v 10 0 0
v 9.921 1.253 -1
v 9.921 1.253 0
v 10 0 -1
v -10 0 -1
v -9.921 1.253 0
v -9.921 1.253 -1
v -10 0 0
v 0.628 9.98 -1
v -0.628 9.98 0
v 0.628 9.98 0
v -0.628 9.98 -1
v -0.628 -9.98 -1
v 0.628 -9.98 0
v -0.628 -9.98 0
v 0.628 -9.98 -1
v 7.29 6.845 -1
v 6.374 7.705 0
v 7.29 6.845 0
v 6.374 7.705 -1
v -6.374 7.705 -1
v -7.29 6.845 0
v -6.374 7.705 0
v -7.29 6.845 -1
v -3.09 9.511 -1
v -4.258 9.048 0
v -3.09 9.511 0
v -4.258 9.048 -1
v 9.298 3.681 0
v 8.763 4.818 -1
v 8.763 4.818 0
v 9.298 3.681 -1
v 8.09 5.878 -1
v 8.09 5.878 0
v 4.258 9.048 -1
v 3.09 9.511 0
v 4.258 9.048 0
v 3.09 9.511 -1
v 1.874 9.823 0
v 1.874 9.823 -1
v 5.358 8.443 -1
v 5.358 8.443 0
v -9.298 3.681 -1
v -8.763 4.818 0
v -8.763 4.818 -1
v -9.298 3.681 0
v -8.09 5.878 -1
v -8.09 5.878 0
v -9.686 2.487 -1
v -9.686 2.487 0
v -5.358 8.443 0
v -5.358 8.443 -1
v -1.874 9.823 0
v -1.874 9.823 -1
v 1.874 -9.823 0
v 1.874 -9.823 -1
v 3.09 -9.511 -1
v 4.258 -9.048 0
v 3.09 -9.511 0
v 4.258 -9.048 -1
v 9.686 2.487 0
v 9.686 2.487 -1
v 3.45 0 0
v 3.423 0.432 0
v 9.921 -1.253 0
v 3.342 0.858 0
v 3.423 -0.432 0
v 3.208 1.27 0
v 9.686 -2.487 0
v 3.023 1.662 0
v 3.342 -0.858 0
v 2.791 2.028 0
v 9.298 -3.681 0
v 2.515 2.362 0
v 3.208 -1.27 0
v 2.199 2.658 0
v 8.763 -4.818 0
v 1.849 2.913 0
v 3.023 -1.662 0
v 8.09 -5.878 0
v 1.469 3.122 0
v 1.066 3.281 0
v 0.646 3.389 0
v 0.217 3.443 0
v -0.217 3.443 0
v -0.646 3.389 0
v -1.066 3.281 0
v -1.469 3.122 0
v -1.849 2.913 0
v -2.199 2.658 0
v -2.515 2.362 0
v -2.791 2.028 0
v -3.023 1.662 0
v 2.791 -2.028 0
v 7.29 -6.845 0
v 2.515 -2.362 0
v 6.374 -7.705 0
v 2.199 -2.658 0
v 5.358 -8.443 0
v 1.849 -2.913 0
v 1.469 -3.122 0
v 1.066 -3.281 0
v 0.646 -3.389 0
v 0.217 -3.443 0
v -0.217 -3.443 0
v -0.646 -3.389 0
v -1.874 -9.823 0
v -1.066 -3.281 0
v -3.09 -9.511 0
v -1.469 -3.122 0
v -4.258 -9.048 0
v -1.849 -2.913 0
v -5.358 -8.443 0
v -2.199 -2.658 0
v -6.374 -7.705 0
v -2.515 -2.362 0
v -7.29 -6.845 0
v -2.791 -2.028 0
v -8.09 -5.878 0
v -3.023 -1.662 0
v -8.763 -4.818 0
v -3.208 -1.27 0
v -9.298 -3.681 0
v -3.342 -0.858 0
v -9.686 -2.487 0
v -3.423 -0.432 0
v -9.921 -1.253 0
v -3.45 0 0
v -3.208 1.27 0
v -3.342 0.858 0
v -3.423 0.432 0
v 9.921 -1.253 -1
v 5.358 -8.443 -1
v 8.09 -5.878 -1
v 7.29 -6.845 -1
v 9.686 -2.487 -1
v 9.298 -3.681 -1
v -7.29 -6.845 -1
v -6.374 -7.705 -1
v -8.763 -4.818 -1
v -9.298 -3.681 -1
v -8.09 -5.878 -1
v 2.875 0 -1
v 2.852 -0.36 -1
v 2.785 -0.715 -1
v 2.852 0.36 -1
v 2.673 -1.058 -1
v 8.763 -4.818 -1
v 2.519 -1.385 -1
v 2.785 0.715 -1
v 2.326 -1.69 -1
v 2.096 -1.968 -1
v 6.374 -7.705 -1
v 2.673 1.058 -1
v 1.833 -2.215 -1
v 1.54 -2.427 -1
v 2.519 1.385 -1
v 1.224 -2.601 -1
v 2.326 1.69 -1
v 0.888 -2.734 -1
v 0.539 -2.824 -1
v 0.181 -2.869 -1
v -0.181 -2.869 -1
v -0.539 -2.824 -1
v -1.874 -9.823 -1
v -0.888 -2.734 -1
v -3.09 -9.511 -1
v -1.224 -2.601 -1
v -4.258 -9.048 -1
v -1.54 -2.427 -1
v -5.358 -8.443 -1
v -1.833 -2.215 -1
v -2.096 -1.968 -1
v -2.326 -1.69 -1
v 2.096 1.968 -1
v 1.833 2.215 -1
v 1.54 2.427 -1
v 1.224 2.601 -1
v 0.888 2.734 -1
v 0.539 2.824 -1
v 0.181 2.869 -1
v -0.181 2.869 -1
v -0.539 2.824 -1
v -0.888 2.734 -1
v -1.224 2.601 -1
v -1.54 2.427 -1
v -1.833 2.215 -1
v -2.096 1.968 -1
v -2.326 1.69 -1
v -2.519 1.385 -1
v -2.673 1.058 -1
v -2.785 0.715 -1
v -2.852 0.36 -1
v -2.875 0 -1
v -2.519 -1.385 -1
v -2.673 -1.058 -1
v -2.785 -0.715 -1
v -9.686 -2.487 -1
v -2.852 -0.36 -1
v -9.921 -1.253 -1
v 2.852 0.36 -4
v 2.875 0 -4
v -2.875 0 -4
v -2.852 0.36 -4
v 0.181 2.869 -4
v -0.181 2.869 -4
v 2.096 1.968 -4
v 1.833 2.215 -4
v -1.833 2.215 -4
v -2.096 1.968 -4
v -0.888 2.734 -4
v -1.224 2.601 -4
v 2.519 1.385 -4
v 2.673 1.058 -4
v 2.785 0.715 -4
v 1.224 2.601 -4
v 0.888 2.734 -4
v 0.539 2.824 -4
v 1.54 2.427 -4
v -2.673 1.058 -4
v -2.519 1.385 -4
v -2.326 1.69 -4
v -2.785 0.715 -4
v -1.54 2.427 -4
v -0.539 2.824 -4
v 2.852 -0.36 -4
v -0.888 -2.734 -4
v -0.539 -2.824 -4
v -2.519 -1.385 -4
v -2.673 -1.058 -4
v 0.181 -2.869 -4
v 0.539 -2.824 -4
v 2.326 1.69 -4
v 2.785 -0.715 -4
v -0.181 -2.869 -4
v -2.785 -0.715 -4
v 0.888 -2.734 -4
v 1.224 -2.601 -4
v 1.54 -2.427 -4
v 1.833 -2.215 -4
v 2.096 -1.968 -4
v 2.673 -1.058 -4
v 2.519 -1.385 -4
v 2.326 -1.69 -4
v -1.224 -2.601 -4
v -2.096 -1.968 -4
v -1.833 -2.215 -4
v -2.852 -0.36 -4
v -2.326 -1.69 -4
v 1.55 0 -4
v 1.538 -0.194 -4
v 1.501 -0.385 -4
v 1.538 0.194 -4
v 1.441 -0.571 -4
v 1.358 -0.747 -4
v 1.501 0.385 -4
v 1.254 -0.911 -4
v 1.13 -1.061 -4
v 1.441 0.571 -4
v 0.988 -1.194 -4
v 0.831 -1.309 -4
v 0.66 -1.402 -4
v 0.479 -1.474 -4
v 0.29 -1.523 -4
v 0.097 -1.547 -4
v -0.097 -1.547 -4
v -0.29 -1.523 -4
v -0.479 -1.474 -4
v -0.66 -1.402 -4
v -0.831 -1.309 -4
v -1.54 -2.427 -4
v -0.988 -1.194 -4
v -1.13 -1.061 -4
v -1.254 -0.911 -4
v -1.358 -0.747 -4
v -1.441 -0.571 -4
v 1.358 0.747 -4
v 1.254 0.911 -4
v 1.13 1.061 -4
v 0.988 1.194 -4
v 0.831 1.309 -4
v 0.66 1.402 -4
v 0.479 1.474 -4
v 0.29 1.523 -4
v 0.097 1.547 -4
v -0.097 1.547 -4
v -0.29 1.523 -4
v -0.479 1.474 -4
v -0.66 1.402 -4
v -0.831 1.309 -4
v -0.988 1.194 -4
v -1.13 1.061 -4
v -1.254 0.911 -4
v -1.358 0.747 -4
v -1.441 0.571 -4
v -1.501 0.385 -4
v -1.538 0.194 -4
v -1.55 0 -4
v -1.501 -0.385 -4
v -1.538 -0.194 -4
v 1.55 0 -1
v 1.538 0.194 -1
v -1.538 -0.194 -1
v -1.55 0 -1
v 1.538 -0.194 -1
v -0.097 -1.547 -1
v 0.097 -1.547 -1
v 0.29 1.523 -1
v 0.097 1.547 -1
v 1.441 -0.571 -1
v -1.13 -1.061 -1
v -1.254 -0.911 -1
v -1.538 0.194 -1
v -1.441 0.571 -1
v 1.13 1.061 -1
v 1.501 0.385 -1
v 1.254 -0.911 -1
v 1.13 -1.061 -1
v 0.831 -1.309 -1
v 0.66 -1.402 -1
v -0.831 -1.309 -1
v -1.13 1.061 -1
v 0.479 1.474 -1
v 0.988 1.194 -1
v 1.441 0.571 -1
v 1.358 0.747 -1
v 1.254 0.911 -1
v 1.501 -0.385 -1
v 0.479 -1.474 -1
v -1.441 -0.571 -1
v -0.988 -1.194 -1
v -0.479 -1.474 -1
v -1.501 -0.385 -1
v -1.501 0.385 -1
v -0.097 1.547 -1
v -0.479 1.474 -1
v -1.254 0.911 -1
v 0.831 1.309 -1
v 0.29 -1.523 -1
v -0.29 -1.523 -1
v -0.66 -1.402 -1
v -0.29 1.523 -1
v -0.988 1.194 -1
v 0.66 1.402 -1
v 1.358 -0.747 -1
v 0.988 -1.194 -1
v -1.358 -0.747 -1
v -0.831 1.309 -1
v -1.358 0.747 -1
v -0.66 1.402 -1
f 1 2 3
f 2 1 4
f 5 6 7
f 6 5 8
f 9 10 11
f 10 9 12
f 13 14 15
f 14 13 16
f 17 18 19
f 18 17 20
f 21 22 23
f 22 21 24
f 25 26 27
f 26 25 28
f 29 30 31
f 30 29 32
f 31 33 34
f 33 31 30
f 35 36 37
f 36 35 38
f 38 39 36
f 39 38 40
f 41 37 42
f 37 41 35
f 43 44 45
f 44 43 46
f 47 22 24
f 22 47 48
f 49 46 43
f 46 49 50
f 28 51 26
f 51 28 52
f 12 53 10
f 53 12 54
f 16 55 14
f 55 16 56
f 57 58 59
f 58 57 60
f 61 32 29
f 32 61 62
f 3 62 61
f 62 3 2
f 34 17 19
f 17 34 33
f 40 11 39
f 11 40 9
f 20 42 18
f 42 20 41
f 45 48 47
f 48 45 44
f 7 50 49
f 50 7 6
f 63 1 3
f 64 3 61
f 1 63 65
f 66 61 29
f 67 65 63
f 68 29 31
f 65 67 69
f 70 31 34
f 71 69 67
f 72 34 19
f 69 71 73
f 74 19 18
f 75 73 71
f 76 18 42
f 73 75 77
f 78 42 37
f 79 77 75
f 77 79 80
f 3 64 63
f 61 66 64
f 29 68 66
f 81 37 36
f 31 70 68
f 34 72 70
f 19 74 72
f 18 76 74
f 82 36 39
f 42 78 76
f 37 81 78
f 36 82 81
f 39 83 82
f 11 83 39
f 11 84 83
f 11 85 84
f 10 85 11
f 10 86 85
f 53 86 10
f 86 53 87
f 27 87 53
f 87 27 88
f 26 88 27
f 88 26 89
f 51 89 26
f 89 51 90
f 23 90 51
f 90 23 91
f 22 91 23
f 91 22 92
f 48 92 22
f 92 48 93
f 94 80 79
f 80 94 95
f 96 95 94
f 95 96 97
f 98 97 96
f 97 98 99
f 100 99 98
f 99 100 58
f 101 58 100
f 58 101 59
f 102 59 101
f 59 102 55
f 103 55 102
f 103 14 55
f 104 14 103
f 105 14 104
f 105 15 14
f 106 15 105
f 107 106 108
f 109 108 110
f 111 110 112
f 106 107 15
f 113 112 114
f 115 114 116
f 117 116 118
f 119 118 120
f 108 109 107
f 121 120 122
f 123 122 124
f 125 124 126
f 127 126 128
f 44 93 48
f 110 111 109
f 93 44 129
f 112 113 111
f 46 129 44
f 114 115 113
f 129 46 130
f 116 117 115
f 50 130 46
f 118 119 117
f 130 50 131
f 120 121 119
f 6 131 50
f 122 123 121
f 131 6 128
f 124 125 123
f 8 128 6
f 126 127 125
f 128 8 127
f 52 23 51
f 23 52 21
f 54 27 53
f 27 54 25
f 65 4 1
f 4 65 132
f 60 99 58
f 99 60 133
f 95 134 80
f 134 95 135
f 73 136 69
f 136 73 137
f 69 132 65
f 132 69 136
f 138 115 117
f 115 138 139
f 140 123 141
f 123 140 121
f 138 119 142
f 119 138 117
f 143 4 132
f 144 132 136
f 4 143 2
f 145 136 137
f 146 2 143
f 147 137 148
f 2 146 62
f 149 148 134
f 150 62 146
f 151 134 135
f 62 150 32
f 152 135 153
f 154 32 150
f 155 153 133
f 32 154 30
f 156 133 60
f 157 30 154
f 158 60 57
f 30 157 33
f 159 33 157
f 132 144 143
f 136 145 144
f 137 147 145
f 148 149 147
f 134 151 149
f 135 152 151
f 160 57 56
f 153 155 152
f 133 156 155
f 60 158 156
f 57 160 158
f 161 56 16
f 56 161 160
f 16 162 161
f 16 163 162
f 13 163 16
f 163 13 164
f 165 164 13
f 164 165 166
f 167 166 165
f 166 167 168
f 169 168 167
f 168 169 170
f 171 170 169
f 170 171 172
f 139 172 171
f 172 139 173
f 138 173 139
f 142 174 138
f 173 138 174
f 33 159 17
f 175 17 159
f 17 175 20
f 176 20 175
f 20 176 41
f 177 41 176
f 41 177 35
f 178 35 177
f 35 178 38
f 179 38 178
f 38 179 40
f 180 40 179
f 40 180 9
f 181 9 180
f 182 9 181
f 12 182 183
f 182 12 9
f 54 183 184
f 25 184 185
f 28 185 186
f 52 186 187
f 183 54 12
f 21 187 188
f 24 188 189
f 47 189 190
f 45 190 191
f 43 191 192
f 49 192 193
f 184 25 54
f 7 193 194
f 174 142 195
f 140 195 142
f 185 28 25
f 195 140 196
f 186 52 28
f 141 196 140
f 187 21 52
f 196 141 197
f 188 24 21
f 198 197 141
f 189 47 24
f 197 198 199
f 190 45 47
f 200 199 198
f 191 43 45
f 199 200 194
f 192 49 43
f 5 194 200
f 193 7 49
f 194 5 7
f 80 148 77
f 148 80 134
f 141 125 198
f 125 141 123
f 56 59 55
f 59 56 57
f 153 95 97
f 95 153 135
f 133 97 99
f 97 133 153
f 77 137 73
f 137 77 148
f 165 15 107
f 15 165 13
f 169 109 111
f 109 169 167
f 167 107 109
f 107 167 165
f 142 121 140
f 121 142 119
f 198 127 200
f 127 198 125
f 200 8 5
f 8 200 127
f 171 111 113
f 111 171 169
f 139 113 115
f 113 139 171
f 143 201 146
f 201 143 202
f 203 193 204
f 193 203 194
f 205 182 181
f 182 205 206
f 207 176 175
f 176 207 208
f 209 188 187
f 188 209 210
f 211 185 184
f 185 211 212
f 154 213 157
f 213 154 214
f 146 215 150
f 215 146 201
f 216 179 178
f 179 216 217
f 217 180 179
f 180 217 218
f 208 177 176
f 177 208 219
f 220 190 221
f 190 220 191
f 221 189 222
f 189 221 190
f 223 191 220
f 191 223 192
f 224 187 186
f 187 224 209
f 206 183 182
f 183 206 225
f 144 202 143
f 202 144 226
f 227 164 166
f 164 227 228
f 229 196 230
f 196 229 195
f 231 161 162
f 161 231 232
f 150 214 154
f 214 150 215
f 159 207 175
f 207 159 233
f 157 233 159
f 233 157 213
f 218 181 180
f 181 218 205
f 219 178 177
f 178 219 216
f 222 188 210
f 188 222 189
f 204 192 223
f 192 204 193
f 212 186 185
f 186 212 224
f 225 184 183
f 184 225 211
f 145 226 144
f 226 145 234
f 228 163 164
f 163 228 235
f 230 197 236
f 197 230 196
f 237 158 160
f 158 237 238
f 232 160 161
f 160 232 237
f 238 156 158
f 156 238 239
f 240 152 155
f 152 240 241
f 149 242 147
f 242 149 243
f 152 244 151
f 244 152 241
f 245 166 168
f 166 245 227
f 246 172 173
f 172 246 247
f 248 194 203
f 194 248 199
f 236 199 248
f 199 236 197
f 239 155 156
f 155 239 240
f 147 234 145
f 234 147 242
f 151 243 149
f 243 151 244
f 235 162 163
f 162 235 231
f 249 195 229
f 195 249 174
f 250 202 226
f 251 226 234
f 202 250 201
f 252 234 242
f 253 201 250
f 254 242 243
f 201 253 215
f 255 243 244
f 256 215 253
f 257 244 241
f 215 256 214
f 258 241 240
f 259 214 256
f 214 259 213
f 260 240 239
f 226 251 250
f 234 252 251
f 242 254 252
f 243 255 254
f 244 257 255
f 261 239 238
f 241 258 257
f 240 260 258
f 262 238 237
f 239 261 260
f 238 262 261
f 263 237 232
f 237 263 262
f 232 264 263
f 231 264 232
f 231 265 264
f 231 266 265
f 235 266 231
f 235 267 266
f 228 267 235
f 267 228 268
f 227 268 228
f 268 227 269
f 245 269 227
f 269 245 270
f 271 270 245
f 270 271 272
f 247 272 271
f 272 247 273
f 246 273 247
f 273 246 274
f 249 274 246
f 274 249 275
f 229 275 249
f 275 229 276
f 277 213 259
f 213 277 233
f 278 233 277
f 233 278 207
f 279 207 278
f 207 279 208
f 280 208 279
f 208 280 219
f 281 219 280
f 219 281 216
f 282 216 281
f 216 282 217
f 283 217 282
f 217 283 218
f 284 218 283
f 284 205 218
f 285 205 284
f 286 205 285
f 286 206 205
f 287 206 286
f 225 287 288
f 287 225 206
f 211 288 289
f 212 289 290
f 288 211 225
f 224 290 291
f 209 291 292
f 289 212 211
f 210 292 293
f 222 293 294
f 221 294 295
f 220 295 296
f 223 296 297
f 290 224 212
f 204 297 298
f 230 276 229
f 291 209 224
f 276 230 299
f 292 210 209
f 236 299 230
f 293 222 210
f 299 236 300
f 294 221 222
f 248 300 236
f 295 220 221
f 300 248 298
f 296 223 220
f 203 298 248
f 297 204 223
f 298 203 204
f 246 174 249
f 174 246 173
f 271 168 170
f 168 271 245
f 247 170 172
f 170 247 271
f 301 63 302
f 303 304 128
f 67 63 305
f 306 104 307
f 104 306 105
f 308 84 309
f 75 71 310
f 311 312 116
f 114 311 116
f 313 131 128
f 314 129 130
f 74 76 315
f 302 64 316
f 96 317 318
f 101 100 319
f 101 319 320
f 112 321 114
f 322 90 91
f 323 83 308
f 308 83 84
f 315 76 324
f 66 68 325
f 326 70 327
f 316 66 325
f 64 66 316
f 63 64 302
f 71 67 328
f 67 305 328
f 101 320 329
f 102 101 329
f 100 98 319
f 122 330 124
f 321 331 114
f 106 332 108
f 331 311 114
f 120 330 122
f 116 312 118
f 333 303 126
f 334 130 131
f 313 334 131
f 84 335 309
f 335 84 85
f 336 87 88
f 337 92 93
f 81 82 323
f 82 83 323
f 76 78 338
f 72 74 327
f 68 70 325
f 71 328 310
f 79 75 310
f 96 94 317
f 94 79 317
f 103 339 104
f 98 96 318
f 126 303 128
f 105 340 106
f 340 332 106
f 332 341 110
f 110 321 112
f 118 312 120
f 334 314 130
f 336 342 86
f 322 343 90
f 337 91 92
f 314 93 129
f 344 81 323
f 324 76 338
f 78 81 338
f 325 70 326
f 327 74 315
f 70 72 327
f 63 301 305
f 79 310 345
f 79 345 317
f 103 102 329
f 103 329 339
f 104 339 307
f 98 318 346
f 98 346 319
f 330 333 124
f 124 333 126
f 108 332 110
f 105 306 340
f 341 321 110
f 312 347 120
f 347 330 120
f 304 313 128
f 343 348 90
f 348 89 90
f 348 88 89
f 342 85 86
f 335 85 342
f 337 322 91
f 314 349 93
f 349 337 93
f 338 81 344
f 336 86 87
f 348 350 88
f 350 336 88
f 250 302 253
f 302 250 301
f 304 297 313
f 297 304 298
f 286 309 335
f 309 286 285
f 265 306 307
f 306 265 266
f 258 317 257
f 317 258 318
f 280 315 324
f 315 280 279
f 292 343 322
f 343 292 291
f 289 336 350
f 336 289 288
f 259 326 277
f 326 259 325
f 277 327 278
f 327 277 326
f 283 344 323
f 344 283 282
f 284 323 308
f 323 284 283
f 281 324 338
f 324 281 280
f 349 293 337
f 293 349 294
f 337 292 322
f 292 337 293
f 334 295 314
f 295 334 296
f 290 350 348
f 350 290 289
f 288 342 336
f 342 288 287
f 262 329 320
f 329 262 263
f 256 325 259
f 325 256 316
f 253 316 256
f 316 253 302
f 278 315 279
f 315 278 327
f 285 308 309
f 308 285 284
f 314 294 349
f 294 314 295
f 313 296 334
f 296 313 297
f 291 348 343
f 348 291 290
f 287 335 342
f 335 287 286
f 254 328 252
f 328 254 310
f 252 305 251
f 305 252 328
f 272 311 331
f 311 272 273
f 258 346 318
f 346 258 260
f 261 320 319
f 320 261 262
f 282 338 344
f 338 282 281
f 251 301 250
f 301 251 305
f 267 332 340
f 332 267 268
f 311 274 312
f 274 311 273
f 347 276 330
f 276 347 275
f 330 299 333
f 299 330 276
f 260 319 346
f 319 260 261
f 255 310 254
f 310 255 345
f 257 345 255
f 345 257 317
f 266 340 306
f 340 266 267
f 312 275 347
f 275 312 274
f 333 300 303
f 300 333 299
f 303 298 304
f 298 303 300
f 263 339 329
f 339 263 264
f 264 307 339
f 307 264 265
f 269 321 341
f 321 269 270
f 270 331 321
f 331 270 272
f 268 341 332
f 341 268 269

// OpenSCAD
$fn = 50;


difference() {
	union() {
		translate(v = [0, 0, -1.0000000000]) {
			cylinder(h = 1.0000000000, r = 10.0000000000);
		}
		#translate(v = [0, 0, -4.0000000000]) {
			cylinder(h = 4.0000000000, r = 2.8750000000);
		}
	}
	union() {
		translate(v = [0, 0, 0]) {
			rotate(a = [0, 0, 0]) {
				difference() {
					union() {
						translate(v = [0, 0, -4.0000000000]) {
							cylinder(h = 4.0000000000, r = 1.2500000000);
						}
						translate(v = [0, 0, -1.0000000000]) {
							cylinder(h = 1.0000000000, r1 = 1.5500000000, r2 = 3.4500000000);
						}
						translate(v = [0, 0, -4.0000000000]) {
							cylinder(h = 4.0000000000, r = 1.5500000000);
						}
						translate(v = [0, 0, -4.0000000000]) {
							cylinder(h = 4.0000000000, r = 1.2500000000);
						}
					}
					union();
				}
			}
		}
	}
}
